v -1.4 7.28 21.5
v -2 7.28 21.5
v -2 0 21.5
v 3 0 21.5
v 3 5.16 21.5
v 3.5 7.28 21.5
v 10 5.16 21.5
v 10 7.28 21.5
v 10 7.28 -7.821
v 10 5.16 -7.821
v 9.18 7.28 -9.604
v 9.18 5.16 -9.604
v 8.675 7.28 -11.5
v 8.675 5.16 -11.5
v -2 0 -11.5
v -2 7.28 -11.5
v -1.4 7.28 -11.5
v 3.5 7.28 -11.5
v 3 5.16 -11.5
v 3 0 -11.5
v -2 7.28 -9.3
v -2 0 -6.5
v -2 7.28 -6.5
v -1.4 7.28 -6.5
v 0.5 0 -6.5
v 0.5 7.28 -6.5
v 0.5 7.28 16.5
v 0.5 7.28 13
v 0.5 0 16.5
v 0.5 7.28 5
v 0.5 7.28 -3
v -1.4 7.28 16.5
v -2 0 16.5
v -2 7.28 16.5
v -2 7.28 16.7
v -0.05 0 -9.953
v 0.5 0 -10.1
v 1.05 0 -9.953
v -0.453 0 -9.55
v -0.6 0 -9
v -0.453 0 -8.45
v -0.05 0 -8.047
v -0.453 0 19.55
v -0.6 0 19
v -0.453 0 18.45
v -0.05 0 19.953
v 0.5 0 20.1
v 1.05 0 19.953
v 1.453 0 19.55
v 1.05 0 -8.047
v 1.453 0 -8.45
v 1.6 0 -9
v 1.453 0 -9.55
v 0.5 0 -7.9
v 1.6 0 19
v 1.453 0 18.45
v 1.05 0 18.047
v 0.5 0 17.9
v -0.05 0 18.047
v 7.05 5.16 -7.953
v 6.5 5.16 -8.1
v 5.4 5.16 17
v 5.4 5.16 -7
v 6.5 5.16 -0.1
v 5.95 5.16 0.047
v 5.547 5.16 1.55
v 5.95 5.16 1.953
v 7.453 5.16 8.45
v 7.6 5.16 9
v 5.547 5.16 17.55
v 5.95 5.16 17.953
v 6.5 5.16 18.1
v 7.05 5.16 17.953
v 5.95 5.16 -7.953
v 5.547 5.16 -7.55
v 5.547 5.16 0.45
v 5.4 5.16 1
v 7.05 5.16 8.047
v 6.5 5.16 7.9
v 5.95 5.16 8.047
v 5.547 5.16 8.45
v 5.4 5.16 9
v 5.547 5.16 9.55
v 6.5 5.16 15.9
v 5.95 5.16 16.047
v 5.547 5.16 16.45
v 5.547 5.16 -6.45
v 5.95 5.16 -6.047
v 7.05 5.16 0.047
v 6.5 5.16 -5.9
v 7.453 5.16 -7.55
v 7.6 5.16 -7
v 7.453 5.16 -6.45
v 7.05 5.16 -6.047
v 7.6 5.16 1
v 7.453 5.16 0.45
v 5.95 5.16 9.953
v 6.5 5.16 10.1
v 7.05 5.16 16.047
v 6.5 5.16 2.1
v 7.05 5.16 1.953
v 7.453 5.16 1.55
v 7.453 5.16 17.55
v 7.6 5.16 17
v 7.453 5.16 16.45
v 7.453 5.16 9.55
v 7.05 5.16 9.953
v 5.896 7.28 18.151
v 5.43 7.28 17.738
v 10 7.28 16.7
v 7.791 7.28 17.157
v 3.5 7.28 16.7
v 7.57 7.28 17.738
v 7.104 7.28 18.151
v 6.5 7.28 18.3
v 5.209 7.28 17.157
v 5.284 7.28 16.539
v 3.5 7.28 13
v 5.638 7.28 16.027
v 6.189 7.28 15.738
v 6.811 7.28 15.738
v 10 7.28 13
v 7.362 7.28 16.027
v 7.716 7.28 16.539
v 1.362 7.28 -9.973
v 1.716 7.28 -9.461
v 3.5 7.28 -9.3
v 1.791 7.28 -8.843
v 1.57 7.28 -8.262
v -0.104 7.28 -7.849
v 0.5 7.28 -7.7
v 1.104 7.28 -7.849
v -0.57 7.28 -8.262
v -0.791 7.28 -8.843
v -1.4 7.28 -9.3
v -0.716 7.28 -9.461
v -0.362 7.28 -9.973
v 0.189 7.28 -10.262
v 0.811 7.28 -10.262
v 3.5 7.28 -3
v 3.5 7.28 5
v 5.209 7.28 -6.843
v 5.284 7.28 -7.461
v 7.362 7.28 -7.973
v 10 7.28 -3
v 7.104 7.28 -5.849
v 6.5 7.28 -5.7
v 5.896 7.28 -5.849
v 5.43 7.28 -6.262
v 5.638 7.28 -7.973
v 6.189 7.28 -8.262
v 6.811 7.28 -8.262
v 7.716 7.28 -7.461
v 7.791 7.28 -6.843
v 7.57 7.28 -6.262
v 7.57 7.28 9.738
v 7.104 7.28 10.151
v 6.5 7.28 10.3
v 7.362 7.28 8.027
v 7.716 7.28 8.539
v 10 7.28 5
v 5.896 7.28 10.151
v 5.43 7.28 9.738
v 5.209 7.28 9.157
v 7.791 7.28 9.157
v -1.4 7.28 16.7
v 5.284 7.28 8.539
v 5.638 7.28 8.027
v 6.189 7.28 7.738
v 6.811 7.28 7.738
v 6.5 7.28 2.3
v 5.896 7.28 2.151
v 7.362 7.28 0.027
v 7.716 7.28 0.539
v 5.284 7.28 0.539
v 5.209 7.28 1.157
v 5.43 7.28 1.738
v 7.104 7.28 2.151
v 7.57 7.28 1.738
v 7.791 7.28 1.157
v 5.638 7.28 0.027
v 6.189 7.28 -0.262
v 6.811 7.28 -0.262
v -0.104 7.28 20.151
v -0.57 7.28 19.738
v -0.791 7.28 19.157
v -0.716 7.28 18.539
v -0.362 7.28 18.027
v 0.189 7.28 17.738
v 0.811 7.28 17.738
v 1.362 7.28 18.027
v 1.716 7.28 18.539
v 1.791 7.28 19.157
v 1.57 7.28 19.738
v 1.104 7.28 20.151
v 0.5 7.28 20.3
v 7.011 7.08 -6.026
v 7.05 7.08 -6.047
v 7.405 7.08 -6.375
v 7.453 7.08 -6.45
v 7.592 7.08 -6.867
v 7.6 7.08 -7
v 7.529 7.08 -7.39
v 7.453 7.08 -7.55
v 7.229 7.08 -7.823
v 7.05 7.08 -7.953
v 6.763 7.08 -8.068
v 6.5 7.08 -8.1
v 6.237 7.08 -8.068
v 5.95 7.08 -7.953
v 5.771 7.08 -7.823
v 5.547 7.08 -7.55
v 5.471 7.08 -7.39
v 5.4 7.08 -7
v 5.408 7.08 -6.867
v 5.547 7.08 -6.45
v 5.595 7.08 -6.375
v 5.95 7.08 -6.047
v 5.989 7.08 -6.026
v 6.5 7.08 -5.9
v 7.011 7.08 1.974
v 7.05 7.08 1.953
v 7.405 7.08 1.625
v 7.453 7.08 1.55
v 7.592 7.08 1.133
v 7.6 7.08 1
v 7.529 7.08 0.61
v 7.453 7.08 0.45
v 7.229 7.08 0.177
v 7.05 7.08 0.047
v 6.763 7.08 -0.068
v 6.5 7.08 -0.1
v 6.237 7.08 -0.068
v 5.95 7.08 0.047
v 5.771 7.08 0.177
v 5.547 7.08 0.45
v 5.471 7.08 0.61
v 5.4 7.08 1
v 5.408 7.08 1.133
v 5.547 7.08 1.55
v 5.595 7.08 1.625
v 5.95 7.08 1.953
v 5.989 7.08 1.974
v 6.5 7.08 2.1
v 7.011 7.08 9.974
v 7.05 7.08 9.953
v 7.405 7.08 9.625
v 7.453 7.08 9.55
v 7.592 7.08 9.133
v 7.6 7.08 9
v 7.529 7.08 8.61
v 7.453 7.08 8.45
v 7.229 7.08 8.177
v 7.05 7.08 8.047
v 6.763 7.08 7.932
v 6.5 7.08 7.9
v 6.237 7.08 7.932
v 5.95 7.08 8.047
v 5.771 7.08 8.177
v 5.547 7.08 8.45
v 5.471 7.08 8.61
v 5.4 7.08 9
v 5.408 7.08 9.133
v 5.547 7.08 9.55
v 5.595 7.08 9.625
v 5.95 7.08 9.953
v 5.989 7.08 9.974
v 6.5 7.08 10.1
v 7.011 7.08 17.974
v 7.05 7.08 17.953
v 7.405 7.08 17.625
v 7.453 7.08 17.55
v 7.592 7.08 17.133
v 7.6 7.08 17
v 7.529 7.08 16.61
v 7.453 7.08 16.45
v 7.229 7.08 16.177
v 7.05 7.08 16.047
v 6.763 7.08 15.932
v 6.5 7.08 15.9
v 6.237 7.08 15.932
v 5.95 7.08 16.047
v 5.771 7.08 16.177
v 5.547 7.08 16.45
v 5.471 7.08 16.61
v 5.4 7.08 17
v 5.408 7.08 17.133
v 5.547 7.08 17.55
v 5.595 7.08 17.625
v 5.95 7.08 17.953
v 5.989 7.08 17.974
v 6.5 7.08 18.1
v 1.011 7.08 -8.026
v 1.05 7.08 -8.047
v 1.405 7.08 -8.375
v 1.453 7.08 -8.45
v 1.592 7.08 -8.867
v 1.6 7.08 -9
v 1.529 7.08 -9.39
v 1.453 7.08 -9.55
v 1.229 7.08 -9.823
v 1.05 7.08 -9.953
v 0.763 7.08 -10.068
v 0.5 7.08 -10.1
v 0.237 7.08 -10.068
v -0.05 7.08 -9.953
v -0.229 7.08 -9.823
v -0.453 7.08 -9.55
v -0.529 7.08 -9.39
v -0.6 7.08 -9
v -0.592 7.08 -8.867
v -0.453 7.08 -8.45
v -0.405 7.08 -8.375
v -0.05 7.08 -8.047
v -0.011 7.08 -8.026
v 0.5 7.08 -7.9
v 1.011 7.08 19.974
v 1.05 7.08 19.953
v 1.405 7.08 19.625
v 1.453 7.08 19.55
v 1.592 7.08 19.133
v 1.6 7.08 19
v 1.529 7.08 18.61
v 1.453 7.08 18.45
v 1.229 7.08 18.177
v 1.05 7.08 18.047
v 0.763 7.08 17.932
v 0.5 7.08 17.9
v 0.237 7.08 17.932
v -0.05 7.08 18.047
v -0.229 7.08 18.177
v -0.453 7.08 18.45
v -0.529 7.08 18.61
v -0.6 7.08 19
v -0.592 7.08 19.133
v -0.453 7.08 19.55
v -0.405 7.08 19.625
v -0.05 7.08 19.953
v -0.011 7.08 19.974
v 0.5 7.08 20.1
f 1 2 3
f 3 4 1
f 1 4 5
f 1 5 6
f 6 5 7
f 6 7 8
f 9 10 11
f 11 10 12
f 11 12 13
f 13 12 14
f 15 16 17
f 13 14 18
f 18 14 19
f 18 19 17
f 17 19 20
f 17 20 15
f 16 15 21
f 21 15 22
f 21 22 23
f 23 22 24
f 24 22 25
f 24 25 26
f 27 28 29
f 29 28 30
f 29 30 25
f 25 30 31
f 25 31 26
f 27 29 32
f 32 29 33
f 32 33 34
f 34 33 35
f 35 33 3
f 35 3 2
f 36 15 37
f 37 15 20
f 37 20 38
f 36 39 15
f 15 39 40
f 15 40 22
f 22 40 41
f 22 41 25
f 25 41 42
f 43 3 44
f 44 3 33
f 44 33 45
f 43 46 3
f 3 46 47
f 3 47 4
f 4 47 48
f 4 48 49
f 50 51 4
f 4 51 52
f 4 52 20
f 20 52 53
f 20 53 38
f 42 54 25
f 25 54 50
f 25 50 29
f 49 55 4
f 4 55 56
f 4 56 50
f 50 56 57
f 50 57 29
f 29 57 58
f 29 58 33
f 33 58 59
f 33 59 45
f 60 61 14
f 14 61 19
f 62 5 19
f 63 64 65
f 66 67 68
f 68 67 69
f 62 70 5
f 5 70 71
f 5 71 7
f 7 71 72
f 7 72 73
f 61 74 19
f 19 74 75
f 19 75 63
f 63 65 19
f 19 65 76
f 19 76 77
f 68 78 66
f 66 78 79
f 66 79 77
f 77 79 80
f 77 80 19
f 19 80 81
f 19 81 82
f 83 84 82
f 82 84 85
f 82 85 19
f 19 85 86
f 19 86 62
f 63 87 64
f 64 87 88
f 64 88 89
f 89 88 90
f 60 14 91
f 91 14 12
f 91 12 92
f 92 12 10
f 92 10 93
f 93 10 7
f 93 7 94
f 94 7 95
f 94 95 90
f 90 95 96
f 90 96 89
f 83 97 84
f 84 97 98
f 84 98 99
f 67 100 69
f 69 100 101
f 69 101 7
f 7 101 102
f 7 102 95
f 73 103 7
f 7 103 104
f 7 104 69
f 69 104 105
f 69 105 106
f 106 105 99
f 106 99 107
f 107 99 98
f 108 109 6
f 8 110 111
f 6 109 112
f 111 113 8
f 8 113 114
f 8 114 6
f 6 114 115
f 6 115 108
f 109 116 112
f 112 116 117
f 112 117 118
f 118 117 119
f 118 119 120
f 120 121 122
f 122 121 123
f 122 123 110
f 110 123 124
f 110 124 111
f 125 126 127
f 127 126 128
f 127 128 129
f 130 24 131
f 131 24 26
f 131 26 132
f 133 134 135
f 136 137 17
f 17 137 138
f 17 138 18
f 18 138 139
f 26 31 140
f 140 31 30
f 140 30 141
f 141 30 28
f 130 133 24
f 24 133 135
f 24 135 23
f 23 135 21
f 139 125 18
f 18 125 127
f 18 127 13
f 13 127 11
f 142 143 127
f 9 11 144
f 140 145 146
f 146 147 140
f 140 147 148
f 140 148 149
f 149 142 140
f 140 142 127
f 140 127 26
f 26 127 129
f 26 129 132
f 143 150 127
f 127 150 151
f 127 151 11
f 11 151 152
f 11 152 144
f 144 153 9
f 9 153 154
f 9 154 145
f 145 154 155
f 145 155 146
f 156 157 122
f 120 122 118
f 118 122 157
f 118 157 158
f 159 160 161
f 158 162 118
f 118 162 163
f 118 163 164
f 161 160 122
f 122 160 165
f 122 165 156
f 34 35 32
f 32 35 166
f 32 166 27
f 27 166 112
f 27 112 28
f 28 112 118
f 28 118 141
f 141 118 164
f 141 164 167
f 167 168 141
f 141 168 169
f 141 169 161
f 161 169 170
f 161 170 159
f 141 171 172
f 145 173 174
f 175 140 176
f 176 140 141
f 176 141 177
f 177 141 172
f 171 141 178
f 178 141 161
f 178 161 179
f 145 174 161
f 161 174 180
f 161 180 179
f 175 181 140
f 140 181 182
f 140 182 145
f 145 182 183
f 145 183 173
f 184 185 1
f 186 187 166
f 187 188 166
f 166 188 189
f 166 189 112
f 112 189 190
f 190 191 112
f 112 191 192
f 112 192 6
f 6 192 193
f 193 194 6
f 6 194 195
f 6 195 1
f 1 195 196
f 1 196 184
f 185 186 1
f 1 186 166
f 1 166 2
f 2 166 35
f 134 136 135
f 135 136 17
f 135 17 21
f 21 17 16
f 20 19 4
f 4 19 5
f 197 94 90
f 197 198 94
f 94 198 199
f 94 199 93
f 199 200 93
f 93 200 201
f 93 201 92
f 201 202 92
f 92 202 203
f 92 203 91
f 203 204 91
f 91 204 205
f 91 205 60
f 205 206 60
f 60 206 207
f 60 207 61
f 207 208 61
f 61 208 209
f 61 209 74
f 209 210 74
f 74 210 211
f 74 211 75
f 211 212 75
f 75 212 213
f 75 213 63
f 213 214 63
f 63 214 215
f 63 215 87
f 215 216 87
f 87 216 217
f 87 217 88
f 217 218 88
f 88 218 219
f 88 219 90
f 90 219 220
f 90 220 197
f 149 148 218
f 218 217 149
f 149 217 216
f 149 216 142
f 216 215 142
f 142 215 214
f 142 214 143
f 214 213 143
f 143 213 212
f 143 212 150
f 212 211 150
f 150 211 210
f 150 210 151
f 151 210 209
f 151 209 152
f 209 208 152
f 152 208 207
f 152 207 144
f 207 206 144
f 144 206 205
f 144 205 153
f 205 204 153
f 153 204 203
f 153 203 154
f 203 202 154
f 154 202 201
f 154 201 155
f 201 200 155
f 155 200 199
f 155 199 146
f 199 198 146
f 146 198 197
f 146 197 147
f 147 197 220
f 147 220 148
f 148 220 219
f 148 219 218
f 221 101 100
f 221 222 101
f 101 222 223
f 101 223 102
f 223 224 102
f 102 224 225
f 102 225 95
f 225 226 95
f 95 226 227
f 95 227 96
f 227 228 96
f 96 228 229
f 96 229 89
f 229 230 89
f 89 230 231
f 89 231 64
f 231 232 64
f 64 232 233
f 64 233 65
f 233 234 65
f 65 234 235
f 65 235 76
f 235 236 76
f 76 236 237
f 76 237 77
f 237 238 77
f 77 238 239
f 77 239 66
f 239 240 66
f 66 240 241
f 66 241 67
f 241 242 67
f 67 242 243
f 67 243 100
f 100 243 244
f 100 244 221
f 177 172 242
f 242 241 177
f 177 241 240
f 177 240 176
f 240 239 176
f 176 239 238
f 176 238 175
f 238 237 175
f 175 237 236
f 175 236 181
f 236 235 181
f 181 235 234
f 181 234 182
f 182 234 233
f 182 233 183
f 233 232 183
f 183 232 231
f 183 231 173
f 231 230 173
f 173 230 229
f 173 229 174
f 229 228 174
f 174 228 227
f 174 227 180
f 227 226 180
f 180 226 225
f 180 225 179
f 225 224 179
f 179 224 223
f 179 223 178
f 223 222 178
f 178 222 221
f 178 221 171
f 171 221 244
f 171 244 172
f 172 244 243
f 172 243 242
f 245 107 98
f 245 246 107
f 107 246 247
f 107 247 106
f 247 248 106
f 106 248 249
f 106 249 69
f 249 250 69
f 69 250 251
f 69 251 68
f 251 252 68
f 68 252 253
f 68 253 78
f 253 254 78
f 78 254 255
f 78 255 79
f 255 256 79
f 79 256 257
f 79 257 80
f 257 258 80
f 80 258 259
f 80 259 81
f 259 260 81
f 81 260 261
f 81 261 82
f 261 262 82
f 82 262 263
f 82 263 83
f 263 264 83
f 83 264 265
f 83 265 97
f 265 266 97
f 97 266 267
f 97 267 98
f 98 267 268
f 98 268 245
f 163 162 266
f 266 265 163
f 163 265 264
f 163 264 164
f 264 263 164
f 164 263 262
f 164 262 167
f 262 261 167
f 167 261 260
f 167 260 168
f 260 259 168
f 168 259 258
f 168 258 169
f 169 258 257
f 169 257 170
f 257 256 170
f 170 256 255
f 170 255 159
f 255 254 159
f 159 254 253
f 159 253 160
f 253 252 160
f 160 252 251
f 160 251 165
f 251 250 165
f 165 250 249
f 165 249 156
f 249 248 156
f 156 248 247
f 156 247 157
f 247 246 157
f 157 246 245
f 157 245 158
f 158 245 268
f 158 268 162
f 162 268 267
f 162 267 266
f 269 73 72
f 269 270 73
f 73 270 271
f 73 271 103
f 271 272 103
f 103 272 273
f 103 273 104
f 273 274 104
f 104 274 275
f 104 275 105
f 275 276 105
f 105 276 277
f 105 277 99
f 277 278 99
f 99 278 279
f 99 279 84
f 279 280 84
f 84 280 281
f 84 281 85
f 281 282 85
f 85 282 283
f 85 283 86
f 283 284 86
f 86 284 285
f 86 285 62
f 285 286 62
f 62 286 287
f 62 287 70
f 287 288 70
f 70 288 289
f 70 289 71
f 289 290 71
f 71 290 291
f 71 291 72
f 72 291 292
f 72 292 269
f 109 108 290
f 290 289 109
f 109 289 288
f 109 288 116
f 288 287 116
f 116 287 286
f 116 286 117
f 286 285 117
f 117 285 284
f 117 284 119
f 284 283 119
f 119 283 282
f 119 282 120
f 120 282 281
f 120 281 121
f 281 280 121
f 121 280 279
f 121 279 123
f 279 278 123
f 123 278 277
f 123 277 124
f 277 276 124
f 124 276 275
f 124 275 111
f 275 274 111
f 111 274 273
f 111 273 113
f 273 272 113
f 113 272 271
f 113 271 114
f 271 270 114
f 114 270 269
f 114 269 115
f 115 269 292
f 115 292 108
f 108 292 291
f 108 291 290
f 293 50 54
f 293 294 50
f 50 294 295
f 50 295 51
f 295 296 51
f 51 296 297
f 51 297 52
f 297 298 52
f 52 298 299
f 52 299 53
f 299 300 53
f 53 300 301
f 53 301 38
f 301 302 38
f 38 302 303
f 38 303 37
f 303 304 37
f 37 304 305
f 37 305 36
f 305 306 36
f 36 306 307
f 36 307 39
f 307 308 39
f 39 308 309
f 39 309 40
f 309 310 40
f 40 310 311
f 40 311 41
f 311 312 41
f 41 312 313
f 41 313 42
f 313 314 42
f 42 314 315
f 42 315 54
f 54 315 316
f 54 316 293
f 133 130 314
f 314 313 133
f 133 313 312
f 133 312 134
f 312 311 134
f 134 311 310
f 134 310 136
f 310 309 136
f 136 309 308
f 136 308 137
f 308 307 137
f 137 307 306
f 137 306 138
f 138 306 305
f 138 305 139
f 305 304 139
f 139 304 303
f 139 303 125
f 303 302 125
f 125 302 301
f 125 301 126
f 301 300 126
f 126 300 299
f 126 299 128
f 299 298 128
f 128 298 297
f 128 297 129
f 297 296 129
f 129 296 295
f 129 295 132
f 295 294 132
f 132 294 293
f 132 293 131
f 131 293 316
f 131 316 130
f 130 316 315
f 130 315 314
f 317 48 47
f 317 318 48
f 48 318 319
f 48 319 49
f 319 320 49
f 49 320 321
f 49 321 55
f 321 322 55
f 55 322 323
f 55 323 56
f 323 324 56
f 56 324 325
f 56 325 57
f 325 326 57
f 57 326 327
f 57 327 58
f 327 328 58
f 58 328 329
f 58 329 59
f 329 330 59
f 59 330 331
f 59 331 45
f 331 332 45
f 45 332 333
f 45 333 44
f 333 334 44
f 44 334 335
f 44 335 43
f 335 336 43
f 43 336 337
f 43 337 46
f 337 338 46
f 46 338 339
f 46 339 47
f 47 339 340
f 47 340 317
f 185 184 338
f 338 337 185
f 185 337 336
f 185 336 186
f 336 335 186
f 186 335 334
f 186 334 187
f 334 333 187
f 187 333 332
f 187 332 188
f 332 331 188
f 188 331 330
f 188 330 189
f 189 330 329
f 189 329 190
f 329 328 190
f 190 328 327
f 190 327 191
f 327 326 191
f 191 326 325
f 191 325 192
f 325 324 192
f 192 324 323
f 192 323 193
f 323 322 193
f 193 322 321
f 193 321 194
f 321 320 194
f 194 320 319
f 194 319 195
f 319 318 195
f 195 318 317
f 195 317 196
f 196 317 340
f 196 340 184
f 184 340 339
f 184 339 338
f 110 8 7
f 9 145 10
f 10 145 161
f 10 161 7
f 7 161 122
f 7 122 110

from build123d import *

# Parameters (mm, degrees)
IZIM3_W                                          = 3.5
IZIM3_H                                          = 23
IZIM3_H_2                                        = 5
IZIM3_W_2                                        = 2.5
Y_KSEKLIK_EKSTR_ZYON3_DEPTH                      = 8.28
IZIM4_W                                          = 7
IZIM4_H                                          = 5.16
KES_EKSTR_ZYON1_DEPTH                            = 34
IZIM11_W                                         = 12
IZIM11_H                                         = 33
KES_EKSTR_ZYON2_DEPTH                            = 1
M2_D_Z_BA_L_MAKINE_VIDAS_IN_HAV_A_DE_D           = 2.2
M2_D_Z_BA_L_MAKINE_VIDAS_IN_HAV_A_DE_CSINK_D     = 2.6
M2_D_Z_BA_L_MAKINE_VIDAS_IN_HAV_A_DE_CSINK_ANGLE = 90
IZIM16_W                                         = 12
IZIM16_H                                         = 33
KES_EKSTR_ZYON3_DEPTH                            = 10


with BuildPart() as part:
    # Çizim3 → Yükseklik-Ekstrüzyon3 (new body)
    with BuildSketch(Plane(origin=(0, 0, 0), x_dir=(1, 0, 0), z_dir=(0, 1, 0))):
        with BuildLine():
            Line((16, 6.5), (16, 11.5))
            Line((16, 11.5), (11.324751653, 11.5))
            ThreePointArc((11.324751653, 11.5), (10.819882158, 9.603828792), (10, 7.821091654))
            Line((10, 7.821091654), (10, -21.5))
            Line((10, -21.5), (16, -21.5))
            Line((16, -21.5), (16, -16.5))
            Line((16, -16.5), (16, 6.5))
        make_face()
        with Locations((17.75, -5)):
            Rectangle(IZIM3_W, IZIM3_H)
        with Locations((17.75, 9)):
            Rectangle(IZIM3_W, IZIM3_H_2)
        with Locations((20.75, 9)):
            Rectangle(IZIM3_W_2, IZIM3_H_2)
        with Locations((17.75, -19)):
            Rectangle(IZIM3_W, IZIM3_H_2)
        with Locations((20.75, -19)):
            Rectangle(IZIM3_W_2, IZIM3_H_2)
    y_kseklik_ekstr_zyon3 = extrude(amount=Y_KSEKLIK_EKSTR_ZYON3_DEPTH)

    # Çizim4 → Kes-Ekstrüzyon1 (cut, through all)
    with BuildSketch(Plane.XY.offset(21.5)):
        with Locations((13.5, 2.58)):
            Rectangle(IZIM4_W, IZIM4_H)
    kes_ekstr_zyon1 = extrude(amount=-KES_EKSTR_ZYON1_DEPTH, mode=Mode.SUBTRACT)

    # Çizim11 → Kes-Ekstrüzyon2 (cut)
    with BuildSketch(Plane(origin=(0, 8.28, 0), x_dir=(1, 0, 0), z_dir=(0, 1, 0))):
        with Locations((16, -5)):
            Rectangle(IZIM11_W, IZIM11_H)
    kes_ekstr_zyon2 = extrude(amount=-KES_EKSTR_ZYON2_DEPTH, mode=Mode.SUBTRACT)

    # M2 Düz Başlı Makine Vidası İçin Havşa_ DEĞİŞTİREBİLİRİZ (through all)
    with Locations(Plane(origin=(19.5, 7.28, 19), x_dir=(0, 0, 1), z_dir=(0, 1, 0))):
        with Locations((0, 0), (-28, 0), (-2, -6), (-10, -6), (-18, -6), (-26, -6)):
            m2_d_z_ba_l_makine_vidas_in_hav_a_de = CounterSinkHole(M2_D_Z_BA_L_MAKINE_VIDAS_IN_HAV_A_DE_D / 2, M2_D_Z_BA_L_MAKINE_VIDAS_IN_HAV_A_DE_CSINK_D / 2, counter_sink_angle=M2_D_Z_BA_L_MAKINE_VIDAS_IN_HAV_A_DE_CSINK_ANGLE)

    # Aynalama2: Yükseklik-Ekstrüzyon3, Kes-Ekstrüzyon1, Kes-Ekstrüzyon2, M2 Düz Başlı Makine Vidası İçin Havşa_ DEĞİŞTİREBİLİRİZ across plane
    add(y_kseklik_ekstr_zyon3.mirror(Plane(origin=(10, 8.28, 0), x_dir=(0, 0, 1), z_dir=(-1, 0, 0))))
    add(kes_ekstr_zyon1.mirror(Plane(origin=(10, 8.28, 0), x_dir=(0, 0, 1), z_dir=(-1, 0, 0))), mode=Mode.SUBTRACT)
    add(kes_ekstr_zyon2.mirror(Plane(origin=(10, 8.28, 0), x_dir=(0, 0, 1), z_dir=(-1, 0, 0))), mode=Mode.SUBTRACT)
    add(m2_d_z_ba_l_makine_vidas_in_hav_a_de.mirror(Plane(origin=(10, 8.28, 0), x_dir=(0, 0, 1), z_dir=(-1, 0, 0))), mode=Mode.SUBTRACT)

    # Çizim16 → Kes-Ekstrüzyon3 (cut)
    with BuildSketch(Plane(origin=(0, 7.28, 0), x_dir=(1, 0, 0), z_dir=(0, 1, 0))):
        with Locations((16, -5)):
            Rectangle(IZIM16_W, IZIM16_H)
    extrude(amount=-KES_EKSTR_ZYON3_DEPTH, mode=Mode.SUBTRACT)


solid = part.part
